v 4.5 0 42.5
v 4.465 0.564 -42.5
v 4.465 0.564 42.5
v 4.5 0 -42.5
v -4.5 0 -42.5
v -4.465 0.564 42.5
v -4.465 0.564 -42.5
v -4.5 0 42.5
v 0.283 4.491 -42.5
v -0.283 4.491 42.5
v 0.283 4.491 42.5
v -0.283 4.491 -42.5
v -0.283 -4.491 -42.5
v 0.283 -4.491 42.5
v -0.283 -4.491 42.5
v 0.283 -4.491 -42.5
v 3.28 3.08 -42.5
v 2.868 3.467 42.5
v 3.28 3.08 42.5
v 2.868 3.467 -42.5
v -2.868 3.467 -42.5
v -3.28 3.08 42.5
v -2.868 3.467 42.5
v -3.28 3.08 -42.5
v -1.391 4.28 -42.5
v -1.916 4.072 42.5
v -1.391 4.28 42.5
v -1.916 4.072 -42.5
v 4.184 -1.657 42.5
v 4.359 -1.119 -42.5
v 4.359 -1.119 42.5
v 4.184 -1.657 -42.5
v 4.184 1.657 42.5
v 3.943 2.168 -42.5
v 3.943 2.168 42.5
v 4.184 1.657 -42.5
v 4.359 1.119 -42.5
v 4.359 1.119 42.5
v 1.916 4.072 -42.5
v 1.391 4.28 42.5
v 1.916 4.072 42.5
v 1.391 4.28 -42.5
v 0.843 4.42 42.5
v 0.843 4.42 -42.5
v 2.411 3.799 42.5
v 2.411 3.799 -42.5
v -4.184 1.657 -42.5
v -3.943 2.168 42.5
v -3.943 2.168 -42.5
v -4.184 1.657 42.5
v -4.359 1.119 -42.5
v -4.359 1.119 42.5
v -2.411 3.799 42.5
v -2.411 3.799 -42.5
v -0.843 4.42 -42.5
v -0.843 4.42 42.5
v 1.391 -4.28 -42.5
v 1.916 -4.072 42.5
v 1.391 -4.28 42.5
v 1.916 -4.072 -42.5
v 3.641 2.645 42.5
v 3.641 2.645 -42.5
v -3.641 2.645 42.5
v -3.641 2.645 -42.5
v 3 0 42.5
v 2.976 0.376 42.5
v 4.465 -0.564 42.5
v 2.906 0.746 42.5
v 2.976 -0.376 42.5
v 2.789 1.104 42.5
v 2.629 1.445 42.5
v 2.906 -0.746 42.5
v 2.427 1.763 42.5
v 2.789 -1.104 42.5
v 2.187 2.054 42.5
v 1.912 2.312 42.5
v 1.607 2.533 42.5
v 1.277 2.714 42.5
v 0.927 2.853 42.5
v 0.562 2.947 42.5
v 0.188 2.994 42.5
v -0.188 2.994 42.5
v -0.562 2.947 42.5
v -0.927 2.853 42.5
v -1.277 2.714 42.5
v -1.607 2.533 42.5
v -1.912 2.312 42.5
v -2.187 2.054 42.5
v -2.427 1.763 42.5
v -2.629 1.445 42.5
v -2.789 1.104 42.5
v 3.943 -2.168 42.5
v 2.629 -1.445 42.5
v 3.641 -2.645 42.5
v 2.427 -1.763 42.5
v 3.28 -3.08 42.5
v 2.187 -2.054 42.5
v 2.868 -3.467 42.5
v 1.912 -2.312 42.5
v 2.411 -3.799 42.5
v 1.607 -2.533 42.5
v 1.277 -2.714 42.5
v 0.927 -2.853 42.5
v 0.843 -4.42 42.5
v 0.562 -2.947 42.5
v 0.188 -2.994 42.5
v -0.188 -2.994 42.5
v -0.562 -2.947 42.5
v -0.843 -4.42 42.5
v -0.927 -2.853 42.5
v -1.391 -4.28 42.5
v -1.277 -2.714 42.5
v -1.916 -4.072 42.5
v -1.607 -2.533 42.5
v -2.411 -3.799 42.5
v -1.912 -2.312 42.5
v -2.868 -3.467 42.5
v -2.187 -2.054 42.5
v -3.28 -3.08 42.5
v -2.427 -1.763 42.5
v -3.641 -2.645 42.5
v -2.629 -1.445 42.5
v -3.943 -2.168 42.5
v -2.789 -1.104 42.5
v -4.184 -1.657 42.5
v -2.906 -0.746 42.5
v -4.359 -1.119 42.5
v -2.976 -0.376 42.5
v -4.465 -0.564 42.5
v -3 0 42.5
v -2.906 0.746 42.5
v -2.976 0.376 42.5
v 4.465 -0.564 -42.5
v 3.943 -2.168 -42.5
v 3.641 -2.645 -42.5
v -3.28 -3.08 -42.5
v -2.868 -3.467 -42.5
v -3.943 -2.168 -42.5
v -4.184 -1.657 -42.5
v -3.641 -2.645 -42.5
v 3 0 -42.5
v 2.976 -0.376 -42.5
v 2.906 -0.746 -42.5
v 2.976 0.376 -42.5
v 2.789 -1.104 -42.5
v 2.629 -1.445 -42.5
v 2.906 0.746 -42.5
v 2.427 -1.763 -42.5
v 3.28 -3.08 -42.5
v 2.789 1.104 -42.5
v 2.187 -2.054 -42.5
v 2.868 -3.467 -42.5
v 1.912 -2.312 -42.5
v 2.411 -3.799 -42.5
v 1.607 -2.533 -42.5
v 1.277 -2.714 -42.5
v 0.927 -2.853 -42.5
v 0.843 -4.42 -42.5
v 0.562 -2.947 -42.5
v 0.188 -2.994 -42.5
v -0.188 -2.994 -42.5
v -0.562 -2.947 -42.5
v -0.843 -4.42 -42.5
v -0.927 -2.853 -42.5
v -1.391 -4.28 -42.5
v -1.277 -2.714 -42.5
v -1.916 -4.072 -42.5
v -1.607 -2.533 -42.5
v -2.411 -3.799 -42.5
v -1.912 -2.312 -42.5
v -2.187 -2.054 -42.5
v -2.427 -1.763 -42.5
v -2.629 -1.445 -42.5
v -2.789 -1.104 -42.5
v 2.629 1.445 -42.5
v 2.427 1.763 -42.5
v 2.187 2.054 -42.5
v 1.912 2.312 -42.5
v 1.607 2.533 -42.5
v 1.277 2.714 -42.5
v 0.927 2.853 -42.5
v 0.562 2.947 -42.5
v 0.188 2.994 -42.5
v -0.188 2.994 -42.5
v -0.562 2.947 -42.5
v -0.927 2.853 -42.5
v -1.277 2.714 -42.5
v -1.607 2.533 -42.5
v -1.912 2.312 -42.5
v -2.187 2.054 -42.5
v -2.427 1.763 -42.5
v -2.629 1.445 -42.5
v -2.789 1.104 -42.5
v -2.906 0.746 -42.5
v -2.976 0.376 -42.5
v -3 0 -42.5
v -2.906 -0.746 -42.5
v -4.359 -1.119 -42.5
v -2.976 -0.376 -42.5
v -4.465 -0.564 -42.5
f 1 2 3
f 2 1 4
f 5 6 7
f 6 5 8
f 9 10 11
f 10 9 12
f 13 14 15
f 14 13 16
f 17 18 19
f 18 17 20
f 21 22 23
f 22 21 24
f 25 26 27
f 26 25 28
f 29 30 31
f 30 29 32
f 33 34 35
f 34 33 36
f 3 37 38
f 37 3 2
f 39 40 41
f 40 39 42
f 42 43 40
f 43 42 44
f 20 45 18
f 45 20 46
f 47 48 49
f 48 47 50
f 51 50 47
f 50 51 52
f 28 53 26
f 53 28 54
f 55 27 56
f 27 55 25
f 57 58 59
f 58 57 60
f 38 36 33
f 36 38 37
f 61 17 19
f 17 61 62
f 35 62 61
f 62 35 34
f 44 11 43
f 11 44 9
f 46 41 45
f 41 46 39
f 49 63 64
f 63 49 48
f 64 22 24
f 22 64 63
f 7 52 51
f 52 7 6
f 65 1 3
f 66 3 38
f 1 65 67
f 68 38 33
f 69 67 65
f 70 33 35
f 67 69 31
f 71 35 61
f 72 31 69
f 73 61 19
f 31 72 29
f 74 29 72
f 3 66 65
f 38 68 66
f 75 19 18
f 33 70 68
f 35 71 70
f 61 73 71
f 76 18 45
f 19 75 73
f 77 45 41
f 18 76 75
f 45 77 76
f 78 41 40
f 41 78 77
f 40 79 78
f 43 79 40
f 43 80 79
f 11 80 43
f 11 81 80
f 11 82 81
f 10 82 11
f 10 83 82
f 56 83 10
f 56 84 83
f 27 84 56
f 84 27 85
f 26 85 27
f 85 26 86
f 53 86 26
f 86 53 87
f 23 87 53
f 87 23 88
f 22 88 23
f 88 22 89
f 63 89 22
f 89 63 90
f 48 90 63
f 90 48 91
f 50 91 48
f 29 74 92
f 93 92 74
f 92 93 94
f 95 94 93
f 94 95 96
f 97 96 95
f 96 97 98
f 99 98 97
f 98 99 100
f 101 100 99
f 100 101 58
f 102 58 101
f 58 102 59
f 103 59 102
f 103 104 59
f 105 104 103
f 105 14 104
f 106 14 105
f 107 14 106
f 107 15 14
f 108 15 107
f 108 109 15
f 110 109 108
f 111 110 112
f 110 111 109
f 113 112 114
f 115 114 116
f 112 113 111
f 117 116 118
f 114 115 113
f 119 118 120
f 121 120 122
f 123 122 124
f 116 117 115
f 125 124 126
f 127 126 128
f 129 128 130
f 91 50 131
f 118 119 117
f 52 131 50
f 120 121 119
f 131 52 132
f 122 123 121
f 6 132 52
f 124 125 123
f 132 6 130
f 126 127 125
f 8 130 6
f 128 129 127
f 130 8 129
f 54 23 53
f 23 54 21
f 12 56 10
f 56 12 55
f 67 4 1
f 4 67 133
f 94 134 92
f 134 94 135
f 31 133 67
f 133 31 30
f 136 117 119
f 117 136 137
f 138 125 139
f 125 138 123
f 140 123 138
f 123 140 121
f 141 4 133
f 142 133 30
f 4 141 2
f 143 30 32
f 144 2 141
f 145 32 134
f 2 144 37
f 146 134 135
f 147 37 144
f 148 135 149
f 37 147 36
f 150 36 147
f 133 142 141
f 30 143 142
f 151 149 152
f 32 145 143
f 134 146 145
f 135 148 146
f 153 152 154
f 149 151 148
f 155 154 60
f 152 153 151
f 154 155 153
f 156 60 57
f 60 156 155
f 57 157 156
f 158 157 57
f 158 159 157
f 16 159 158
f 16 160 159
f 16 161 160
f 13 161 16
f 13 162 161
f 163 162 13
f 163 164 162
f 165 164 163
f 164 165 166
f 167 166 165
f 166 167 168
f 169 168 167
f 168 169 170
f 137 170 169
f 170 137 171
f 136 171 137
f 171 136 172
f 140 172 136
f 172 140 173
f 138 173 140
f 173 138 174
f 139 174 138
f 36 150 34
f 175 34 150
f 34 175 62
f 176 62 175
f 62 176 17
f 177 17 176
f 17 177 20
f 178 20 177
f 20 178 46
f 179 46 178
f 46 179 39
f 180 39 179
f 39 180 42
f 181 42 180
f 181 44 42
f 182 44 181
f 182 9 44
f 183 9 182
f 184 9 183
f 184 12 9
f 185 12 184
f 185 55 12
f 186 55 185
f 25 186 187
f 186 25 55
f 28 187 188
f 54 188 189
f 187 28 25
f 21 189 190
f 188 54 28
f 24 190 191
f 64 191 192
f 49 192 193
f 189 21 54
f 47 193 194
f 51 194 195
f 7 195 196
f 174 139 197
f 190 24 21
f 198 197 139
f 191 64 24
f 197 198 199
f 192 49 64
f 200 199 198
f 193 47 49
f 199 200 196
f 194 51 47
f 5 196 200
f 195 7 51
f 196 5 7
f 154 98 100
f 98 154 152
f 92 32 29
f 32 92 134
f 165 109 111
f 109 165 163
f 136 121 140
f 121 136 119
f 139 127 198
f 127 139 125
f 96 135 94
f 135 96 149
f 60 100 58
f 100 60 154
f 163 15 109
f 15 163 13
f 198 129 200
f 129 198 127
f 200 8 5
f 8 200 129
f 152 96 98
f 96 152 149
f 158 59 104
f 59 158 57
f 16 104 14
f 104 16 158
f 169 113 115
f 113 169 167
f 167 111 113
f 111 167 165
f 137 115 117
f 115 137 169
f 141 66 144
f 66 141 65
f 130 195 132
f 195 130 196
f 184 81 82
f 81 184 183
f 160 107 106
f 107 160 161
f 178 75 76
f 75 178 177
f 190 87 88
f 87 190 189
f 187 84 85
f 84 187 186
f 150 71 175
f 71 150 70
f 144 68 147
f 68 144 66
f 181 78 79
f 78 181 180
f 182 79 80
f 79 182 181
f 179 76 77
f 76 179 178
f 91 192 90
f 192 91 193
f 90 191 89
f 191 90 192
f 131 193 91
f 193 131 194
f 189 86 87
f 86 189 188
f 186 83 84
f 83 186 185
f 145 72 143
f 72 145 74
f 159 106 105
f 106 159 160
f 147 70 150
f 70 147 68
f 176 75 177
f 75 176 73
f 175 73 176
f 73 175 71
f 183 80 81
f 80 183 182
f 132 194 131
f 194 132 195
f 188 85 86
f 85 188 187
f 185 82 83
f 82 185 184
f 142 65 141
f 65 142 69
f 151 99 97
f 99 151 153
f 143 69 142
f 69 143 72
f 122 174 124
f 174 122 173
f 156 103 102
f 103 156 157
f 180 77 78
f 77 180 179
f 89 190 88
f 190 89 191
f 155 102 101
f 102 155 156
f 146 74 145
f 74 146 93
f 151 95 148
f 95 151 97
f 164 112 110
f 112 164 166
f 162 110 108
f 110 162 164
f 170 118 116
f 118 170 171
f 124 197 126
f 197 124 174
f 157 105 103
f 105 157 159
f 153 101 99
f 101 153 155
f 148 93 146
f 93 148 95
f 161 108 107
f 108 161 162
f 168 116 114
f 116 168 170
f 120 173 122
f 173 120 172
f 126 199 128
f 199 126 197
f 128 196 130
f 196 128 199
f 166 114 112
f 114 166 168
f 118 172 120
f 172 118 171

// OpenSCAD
$fn = 50;


difference() {
	union() {
		translate(v = [0, 0, -42.5000000000]) {
			cylinder(h = 85, r = 4.5000000000);
		}
	}
	union() {
		translate(v = [0, 0, -100.0000000000]) {
			cylinder(h = 200, r = 3.0000000000);
		}
	}
}
